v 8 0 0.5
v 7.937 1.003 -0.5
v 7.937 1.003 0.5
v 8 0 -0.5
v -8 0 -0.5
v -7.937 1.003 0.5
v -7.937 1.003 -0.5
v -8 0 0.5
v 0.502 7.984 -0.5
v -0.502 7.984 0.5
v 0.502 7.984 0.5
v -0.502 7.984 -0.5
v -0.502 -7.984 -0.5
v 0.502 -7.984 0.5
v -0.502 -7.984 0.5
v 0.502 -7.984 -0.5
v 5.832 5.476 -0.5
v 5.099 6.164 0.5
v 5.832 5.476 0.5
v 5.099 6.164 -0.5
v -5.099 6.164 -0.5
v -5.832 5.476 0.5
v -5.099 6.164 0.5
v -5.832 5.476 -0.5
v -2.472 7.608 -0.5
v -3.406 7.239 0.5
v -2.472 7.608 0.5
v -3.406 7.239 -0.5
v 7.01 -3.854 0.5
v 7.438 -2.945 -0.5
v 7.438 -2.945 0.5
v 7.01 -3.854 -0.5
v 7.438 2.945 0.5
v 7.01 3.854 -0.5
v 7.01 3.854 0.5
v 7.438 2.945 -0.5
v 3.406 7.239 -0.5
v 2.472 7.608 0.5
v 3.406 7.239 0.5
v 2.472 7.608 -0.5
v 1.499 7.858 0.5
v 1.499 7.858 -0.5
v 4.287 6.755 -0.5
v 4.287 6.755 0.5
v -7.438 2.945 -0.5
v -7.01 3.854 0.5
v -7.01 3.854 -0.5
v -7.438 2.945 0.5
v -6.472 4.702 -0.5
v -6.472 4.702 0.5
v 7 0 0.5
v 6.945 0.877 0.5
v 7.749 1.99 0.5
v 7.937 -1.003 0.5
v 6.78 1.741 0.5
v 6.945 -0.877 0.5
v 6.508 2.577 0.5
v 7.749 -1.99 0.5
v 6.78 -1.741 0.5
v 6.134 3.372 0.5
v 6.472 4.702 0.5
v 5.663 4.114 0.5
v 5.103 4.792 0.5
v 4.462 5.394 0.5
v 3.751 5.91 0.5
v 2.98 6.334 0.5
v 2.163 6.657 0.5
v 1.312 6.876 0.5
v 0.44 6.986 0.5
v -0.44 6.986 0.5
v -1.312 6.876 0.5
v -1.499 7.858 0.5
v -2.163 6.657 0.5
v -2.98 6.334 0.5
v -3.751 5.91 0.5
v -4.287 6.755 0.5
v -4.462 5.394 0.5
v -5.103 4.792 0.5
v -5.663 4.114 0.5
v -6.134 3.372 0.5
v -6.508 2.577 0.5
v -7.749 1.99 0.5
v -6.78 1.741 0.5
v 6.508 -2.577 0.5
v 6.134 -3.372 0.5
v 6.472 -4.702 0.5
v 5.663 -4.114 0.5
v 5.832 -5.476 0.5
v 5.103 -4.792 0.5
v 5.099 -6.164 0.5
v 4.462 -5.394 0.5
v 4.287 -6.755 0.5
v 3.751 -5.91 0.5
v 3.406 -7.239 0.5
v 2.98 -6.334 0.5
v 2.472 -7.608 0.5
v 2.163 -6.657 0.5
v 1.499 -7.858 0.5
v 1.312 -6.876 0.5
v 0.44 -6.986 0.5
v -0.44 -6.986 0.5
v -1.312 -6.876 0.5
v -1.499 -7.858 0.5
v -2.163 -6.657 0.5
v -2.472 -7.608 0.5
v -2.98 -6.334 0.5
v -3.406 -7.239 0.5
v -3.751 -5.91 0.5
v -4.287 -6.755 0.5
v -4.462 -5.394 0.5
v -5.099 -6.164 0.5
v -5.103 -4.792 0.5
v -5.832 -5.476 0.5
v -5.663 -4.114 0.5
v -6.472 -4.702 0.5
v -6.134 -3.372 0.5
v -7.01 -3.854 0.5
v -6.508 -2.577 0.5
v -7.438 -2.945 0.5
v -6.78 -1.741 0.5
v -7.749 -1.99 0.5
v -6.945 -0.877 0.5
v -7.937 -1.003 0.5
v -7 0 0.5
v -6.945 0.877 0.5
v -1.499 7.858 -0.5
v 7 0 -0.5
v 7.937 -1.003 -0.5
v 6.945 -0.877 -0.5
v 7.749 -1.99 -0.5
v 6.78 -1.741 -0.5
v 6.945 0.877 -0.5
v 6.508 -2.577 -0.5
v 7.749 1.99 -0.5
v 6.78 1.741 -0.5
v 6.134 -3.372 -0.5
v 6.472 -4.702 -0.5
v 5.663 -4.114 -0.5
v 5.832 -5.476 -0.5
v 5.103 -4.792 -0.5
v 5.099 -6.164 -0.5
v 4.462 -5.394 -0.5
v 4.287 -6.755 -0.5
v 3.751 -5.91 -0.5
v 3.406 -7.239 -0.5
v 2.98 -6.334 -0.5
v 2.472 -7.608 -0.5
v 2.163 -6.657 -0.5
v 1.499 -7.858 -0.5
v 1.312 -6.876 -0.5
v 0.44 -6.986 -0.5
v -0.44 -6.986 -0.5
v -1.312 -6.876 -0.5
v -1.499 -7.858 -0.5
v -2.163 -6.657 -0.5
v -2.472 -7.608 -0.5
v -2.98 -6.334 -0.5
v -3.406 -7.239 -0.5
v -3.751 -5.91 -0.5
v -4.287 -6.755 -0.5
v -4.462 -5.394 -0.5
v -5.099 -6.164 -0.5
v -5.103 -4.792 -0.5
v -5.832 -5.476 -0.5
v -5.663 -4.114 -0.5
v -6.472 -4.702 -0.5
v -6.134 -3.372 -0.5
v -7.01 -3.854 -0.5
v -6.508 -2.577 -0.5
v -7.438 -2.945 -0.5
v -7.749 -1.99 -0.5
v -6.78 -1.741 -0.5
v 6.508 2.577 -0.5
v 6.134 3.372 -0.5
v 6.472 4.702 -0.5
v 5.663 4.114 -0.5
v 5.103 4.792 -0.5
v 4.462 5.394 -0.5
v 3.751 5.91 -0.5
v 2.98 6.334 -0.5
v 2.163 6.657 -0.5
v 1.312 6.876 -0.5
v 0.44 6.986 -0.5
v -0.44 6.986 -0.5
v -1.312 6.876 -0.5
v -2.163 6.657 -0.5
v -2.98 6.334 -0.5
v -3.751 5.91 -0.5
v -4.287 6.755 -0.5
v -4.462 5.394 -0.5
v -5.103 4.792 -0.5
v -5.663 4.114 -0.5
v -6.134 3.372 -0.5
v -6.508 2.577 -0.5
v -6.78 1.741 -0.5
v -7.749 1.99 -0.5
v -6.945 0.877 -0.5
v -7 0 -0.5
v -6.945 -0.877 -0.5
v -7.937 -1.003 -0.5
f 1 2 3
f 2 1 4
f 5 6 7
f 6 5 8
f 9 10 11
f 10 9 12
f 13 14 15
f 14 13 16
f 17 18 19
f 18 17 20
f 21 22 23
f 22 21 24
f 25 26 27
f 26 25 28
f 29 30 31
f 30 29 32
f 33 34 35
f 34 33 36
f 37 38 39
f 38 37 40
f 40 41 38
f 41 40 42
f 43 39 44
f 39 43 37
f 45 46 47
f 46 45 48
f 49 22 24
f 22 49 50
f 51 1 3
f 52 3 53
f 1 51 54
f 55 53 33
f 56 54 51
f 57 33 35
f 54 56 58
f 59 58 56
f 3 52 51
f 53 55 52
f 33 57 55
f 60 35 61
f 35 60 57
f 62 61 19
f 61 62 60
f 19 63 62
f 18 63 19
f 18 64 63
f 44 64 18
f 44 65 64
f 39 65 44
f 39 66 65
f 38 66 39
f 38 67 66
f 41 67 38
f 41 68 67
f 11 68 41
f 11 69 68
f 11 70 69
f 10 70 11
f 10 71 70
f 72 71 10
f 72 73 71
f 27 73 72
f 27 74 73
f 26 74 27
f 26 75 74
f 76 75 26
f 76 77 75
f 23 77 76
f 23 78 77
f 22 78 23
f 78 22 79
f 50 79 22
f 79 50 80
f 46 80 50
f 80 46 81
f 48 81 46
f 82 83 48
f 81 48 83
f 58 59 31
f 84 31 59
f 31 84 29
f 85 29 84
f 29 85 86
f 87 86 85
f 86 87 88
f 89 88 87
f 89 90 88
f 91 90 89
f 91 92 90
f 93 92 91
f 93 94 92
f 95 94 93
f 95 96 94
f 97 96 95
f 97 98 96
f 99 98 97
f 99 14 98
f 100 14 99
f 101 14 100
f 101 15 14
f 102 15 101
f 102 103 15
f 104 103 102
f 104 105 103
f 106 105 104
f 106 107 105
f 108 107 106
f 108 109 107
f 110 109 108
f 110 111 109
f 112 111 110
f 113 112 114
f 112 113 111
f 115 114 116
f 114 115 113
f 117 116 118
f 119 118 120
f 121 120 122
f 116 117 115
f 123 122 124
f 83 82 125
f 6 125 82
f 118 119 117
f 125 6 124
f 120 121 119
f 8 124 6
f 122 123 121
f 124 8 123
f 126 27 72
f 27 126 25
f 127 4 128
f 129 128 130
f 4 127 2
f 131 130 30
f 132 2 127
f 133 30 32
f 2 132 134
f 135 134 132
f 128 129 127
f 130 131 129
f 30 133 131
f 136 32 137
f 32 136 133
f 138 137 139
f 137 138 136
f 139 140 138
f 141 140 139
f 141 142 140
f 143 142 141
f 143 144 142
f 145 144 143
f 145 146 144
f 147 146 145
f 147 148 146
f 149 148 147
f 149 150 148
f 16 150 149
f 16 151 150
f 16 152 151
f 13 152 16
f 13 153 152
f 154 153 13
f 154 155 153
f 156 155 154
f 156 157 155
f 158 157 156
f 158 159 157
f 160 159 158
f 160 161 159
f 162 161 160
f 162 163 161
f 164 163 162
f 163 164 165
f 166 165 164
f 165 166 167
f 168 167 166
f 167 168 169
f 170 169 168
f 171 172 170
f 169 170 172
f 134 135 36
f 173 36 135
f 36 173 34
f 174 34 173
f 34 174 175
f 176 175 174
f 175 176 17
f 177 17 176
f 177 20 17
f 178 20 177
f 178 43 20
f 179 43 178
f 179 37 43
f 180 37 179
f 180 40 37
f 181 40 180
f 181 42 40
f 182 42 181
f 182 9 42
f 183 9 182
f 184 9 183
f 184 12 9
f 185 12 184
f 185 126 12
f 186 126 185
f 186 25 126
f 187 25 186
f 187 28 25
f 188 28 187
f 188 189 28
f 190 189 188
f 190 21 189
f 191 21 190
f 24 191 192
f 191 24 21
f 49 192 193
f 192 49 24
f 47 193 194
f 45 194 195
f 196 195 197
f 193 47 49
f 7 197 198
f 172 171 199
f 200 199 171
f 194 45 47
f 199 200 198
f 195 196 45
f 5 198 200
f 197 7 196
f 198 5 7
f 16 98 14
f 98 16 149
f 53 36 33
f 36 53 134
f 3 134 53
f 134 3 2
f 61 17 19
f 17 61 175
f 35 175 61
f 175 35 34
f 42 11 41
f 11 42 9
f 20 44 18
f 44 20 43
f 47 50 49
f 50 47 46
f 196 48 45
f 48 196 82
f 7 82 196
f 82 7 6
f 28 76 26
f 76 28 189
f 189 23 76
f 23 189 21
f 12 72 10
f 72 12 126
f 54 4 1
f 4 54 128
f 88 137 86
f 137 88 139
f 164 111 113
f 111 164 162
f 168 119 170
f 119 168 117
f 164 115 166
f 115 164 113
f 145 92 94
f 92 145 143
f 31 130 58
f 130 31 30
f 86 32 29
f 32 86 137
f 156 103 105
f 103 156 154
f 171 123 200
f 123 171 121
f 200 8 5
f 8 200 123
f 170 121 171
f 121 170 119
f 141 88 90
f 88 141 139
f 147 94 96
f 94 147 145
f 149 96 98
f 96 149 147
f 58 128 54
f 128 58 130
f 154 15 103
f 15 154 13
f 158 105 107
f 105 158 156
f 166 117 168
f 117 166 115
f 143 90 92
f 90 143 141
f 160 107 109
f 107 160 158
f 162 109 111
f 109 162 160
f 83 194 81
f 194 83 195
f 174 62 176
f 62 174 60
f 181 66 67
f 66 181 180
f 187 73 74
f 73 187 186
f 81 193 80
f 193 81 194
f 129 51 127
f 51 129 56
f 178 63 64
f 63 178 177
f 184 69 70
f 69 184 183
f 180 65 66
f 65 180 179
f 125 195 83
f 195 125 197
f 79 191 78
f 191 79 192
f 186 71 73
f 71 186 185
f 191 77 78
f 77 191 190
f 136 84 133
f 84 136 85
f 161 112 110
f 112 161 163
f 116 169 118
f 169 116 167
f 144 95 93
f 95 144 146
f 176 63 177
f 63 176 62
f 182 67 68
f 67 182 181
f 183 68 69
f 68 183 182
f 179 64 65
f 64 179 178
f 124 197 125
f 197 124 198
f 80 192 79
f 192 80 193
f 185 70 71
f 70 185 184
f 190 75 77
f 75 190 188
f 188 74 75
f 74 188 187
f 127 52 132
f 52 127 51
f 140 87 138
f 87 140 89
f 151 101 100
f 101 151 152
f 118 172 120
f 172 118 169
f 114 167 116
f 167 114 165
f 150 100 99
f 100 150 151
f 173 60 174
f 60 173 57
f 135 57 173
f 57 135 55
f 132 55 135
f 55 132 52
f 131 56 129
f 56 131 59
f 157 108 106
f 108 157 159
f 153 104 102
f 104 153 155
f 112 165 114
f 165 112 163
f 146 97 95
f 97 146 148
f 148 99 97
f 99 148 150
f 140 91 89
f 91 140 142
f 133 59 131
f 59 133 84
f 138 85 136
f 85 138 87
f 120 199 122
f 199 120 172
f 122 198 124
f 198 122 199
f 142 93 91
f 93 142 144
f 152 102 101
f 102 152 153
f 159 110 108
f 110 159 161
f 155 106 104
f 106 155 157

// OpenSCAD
$fn = 50;


difference() {
	union() {
		translate(v = [0, 0, -0.5000000000]) {
			cylinder(h = 1, r = 8.0000000000);
		}
	}
	union() {
		translate(v = [0, 0, -100.0000000000]) {
			cylinder(h = 200, r = 7);
		}
	}
}
